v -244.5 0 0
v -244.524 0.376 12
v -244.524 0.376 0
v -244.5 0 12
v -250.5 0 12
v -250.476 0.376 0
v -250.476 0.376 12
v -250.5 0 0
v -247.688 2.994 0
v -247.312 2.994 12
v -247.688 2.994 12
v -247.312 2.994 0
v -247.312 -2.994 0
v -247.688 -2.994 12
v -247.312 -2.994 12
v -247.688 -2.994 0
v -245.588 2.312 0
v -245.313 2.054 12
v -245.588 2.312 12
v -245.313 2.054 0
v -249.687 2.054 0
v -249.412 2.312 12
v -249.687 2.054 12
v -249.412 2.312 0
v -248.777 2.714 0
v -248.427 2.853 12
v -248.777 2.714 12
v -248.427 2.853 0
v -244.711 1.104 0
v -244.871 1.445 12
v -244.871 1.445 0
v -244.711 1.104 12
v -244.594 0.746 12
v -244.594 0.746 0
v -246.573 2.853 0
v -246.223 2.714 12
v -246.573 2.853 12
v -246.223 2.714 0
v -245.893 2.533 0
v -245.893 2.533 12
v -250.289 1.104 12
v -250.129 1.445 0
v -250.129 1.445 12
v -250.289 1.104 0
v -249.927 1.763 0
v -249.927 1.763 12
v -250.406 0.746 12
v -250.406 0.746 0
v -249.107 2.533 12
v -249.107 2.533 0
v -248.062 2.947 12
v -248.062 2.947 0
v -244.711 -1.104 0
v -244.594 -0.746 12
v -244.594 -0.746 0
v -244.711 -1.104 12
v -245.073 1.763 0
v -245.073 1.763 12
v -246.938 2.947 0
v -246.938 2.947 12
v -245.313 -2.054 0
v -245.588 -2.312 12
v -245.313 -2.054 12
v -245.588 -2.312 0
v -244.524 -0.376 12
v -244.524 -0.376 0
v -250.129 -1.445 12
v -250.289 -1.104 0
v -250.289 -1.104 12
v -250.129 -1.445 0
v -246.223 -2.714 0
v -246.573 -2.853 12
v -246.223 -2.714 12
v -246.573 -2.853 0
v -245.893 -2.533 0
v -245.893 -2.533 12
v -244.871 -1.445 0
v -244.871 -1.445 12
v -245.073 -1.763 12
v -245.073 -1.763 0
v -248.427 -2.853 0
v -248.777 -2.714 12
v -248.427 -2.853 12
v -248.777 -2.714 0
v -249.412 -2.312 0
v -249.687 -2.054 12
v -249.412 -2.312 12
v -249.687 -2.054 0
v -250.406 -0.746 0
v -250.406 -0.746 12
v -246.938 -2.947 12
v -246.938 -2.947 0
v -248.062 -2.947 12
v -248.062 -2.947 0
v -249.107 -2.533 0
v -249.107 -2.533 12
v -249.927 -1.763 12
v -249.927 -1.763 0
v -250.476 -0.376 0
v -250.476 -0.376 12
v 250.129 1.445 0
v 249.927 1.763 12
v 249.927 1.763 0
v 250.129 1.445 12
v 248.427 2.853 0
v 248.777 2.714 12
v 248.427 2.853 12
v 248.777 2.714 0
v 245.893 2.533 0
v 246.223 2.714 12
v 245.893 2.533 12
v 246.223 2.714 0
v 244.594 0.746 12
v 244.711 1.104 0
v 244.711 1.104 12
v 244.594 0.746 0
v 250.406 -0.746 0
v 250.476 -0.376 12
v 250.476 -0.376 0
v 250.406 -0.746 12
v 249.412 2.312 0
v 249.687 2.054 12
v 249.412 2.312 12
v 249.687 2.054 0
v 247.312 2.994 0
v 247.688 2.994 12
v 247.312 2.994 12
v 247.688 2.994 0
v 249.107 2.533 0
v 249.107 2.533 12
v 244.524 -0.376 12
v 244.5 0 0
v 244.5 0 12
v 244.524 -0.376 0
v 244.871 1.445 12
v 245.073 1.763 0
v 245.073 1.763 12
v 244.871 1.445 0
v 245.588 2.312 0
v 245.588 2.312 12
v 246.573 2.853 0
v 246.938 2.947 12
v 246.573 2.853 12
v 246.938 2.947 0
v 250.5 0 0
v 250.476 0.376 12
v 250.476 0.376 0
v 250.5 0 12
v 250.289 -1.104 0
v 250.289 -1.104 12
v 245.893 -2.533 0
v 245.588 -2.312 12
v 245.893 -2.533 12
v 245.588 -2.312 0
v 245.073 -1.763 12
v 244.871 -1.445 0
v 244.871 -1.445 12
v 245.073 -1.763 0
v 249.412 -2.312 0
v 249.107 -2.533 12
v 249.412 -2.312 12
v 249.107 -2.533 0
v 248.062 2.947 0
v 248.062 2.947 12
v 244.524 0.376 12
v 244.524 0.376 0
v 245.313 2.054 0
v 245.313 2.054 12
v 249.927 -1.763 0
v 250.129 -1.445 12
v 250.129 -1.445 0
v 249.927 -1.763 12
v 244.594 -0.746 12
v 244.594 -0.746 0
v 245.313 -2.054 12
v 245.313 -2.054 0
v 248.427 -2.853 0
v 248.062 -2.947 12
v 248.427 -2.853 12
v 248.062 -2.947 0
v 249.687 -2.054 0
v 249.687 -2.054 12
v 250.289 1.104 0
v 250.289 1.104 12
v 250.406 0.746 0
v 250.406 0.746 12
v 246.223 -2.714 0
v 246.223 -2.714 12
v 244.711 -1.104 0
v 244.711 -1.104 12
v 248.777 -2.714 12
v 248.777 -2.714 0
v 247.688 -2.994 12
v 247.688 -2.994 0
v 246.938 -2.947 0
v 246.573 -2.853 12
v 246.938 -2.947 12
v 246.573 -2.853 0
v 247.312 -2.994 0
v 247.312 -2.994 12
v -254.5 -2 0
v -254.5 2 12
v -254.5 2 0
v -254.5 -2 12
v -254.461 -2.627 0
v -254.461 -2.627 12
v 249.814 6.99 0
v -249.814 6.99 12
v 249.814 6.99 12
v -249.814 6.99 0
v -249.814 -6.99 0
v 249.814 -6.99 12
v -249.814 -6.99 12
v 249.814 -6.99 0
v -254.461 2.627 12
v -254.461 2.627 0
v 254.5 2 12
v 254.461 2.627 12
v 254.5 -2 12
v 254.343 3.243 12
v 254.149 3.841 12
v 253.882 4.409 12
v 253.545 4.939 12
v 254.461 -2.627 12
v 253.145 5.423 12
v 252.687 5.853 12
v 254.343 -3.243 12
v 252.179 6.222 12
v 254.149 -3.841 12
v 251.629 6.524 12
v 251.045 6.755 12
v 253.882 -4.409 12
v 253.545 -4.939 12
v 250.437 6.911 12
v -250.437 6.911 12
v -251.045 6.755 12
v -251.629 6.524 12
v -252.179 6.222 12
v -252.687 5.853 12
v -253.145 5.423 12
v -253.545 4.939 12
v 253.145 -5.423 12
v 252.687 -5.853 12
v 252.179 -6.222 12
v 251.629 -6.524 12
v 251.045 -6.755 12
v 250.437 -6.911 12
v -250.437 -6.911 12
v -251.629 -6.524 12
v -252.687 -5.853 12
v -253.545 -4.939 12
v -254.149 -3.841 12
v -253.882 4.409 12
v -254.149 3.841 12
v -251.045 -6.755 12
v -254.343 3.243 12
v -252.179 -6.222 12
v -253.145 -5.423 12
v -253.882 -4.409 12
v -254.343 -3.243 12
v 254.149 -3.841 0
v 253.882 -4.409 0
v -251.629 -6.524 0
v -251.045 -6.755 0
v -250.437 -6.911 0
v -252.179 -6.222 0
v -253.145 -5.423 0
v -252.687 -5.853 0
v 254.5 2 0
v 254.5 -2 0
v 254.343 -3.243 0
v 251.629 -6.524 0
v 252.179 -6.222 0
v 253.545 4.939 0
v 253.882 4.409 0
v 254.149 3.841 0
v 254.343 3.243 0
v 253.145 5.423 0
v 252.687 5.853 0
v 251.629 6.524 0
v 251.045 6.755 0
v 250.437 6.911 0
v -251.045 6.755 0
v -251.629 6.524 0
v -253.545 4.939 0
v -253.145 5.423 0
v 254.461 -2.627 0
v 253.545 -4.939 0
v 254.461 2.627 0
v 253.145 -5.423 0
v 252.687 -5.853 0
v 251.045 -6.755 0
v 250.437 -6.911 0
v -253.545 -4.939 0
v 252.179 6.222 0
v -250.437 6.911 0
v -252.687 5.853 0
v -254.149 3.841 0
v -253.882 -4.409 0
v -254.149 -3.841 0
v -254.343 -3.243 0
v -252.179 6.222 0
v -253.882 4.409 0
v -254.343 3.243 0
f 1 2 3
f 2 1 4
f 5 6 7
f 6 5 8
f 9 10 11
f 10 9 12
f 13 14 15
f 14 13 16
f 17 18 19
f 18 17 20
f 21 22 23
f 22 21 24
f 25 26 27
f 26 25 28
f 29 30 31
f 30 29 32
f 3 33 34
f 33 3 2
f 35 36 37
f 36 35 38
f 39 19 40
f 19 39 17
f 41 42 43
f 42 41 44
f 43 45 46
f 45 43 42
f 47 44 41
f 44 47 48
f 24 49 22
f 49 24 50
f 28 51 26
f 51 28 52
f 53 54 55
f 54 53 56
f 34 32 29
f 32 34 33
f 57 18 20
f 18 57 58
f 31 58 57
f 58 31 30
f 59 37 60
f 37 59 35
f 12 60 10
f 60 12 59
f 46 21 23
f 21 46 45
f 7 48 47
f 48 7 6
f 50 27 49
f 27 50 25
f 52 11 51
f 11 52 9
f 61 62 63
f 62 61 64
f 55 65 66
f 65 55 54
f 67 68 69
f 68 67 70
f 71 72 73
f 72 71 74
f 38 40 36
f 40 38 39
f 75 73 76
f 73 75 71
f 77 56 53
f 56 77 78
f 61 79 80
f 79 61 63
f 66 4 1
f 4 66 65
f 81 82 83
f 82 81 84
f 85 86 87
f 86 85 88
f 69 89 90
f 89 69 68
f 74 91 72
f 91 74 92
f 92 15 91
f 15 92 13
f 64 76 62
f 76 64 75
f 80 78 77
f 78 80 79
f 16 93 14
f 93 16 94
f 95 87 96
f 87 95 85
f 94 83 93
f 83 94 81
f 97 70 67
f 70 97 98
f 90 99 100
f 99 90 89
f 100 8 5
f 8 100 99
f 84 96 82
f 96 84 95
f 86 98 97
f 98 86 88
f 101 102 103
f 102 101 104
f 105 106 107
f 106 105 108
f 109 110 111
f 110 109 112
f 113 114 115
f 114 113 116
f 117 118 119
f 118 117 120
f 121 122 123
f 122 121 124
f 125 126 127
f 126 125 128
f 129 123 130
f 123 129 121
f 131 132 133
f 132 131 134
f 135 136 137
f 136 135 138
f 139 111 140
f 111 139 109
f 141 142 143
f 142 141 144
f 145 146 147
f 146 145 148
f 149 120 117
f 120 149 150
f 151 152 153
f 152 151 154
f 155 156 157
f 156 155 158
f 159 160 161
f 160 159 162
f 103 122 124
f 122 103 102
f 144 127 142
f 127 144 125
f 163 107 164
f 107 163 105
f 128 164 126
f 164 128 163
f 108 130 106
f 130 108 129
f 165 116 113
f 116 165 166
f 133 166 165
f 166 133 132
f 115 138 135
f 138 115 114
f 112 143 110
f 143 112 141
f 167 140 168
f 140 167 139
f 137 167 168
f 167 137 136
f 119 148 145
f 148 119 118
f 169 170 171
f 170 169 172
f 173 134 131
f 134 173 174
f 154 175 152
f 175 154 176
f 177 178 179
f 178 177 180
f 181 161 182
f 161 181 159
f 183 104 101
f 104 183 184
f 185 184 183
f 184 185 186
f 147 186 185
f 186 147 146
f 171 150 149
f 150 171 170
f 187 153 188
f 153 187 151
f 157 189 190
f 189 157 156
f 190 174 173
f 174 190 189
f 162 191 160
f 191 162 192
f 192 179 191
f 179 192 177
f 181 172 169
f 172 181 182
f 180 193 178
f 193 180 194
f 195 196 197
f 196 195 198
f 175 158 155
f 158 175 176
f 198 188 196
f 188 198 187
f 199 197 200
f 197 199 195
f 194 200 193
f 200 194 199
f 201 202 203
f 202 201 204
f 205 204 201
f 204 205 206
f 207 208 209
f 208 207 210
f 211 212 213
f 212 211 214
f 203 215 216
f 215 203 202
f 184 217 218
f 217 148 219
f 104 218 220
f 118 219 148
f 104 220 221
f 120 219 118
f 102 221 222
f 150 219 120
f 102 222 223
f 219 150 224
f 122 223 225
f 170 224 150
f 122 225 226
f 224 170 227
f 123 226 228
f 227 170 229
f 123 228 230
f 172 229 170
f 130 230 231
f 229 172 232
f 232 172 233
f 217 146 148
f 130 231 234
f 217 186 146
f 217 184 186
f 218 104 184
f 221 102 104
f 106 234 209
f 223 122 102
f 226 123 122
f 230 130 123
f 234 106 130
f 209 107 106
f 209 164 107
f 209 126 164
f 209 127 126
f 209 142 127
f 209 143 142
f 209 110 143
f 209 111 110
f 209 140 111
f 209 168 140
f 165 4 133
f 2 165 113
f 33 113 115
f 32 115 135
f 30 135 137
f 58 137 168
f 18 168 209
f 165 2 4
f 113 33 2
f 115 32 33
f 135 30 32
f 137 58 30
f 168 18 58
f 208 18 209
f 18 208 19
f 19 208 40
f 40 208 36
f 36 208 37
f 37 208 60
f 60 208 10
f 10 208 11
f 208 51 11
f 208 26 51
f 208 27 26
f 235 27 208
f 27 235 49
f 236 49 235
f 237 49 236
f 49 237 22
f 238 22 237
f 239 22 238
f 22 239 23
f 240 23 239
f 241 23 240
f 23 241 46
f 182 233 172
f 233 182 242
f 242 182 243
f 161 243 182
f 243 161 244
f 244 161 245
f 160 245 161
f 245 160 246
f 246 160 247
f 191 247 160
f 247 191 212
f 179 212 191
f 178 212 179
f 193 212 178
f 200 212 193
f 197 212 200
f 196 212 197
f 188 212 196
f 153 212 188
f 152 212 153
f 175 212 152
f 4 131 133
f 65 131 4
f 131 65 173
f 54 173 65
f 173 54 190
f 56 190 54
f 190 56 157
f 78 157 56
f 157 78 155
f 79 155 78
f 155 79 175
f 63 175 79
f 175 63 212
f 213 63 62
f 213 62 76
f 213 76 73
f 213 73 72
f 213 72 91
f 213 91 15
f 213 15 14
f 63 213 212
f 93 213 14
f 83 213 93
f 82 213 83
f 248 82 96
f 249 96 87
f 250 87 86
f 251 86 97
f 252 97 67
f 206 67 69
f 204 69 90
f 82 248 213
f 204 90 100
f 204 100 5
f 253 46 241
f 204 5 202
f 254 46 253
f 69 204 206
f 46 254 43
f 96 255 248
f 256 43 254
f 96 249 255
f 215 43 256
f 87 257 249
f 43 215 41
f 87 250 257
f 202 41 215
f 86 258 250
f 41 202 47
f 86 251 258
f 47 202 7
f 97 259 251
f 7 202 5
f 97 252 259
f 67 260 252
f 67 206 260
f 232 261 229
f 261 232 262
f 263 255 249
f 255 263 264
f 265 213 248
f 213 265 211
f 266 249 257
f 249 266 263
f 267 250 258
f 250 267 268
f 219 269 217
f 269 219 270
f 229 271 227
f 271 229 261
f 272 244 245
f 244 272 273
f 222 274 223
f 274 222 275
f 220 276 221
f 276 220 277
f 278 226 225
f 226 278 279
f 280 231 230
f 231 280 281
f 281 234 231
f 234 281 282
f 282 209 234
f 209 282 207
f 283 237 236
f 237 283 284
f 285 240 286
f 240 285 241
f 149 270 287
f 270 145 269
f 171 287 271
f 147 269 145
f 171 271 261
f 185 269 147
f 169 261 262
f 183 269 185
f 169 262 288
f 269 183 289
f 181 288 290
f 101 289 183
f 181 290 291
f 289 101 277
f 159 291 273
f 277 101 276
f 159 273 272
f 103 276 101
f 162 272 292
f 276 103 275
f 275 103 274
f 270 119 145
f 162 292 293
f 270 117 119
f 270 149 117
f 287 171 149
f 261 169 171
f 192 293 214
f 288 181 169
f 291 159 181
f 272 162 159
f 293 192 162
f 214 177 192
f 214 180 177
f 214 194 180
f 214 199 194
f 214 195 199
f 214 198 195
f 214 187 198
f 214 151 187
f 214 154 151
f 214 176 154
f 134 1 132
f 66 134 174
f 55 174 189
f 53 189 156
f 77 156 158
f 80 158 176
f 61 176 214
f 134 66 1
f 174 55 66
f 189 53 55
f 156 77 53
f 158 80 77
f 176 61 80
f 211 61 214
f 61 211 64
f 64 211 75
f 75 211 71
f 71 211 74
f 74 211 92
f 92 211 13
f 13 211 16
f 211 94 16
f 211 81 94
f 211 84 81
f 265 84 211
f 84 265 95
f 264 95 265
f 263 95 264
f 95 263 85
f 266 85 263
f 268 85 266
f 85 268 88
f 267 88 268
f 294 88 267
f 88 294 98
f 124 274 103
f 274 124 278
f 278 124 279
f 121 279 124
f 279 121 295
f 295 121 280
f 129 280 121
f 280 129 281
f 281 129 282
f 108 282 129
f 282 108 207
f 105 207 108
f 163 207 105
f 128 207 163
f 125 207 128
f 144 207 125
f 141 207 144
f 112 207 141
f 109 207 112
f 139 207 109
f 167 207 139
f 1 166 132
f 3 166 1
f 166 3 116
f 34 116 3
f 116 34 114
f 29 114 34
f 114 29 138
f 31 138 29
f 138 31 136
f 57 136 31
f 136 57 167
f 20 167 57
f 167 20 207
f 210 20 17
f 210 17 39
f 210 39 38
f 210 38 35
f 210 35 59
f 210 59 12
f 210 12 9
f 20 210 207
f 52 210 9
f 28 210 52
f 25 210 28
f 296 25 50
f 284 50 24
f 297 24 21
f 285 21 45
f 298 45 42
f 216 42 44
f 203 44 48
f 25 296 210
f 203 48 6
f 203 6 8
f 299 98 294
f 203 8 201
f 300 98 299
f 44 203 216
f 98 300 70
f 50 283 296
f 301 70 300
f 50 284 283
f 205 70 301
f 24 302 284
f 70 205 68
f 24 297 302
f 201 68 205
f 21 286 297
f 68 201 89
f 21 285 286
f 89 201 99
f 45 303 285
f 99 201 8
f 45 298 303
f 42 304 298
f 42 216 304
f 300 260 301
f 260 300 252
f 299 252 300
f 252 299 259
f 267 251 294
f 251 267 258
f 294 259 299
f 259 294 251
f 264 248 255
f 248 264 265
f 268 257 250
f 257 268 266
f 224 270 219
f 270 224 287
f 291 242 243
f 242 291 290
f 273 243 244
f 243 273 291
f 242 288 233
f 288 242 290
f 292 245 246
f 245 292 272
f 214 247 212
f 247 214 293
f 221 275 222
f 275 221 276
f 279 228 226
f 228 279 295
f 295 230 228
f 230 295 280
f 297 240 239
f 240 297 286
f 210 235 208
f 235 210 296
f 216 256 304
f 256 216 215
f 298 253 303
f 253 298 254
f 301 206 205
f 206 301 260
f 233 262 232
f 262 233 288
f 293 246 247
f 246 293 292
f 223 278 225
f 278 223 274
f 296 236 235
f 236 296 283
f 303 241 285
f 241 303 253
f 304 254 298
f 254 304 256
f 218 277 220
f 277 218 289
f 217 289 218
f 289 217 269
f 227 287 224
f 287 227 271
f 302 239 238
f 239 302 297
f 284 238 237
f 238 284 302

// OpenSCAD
$fn = 50;


difference() {
	union() {
		hull() {
			translate(v = [-249.5000000000, 2.0000000000, 0]) {
				cylinder(h = 12, r = 5);
			}
			translate(v = [249.5000000000, 2.0000000000, 0]) {
				cylinder(h = 12, r = 5);
			}
			translate(v = [-249.5000000000, -2.0000000000, 0]) {
				cylinder(h = 12, r = 5);
			}
			translate(v = [249.5000000000, -2.0000000000, 0]) {
				cylinder(h = 12, r = 5);
			}
		}
	}
	union() {
		translate(v = [-247.5000000000, 0.0000000000, -100.0000000000]) {
			cylinder(h = 200, r = 3.0000000000);
		}
		translate(v = [-247.5000000000, 0.0000000000, -100.0000000000]) {
			cylinder(h = 200, r = 3.0000000000);
		}
		translate(v = [247.5000000000, 0.0000000000, -100.0000000000]) {
			cylinder(h = 200, r = 3.0000000000);
		}
		translate(v = [247.5000000000, 0.0000000000, -100.0000000000]) {
			cylinder(h = 200, r = 3.0000000000);
		}
	}
}
